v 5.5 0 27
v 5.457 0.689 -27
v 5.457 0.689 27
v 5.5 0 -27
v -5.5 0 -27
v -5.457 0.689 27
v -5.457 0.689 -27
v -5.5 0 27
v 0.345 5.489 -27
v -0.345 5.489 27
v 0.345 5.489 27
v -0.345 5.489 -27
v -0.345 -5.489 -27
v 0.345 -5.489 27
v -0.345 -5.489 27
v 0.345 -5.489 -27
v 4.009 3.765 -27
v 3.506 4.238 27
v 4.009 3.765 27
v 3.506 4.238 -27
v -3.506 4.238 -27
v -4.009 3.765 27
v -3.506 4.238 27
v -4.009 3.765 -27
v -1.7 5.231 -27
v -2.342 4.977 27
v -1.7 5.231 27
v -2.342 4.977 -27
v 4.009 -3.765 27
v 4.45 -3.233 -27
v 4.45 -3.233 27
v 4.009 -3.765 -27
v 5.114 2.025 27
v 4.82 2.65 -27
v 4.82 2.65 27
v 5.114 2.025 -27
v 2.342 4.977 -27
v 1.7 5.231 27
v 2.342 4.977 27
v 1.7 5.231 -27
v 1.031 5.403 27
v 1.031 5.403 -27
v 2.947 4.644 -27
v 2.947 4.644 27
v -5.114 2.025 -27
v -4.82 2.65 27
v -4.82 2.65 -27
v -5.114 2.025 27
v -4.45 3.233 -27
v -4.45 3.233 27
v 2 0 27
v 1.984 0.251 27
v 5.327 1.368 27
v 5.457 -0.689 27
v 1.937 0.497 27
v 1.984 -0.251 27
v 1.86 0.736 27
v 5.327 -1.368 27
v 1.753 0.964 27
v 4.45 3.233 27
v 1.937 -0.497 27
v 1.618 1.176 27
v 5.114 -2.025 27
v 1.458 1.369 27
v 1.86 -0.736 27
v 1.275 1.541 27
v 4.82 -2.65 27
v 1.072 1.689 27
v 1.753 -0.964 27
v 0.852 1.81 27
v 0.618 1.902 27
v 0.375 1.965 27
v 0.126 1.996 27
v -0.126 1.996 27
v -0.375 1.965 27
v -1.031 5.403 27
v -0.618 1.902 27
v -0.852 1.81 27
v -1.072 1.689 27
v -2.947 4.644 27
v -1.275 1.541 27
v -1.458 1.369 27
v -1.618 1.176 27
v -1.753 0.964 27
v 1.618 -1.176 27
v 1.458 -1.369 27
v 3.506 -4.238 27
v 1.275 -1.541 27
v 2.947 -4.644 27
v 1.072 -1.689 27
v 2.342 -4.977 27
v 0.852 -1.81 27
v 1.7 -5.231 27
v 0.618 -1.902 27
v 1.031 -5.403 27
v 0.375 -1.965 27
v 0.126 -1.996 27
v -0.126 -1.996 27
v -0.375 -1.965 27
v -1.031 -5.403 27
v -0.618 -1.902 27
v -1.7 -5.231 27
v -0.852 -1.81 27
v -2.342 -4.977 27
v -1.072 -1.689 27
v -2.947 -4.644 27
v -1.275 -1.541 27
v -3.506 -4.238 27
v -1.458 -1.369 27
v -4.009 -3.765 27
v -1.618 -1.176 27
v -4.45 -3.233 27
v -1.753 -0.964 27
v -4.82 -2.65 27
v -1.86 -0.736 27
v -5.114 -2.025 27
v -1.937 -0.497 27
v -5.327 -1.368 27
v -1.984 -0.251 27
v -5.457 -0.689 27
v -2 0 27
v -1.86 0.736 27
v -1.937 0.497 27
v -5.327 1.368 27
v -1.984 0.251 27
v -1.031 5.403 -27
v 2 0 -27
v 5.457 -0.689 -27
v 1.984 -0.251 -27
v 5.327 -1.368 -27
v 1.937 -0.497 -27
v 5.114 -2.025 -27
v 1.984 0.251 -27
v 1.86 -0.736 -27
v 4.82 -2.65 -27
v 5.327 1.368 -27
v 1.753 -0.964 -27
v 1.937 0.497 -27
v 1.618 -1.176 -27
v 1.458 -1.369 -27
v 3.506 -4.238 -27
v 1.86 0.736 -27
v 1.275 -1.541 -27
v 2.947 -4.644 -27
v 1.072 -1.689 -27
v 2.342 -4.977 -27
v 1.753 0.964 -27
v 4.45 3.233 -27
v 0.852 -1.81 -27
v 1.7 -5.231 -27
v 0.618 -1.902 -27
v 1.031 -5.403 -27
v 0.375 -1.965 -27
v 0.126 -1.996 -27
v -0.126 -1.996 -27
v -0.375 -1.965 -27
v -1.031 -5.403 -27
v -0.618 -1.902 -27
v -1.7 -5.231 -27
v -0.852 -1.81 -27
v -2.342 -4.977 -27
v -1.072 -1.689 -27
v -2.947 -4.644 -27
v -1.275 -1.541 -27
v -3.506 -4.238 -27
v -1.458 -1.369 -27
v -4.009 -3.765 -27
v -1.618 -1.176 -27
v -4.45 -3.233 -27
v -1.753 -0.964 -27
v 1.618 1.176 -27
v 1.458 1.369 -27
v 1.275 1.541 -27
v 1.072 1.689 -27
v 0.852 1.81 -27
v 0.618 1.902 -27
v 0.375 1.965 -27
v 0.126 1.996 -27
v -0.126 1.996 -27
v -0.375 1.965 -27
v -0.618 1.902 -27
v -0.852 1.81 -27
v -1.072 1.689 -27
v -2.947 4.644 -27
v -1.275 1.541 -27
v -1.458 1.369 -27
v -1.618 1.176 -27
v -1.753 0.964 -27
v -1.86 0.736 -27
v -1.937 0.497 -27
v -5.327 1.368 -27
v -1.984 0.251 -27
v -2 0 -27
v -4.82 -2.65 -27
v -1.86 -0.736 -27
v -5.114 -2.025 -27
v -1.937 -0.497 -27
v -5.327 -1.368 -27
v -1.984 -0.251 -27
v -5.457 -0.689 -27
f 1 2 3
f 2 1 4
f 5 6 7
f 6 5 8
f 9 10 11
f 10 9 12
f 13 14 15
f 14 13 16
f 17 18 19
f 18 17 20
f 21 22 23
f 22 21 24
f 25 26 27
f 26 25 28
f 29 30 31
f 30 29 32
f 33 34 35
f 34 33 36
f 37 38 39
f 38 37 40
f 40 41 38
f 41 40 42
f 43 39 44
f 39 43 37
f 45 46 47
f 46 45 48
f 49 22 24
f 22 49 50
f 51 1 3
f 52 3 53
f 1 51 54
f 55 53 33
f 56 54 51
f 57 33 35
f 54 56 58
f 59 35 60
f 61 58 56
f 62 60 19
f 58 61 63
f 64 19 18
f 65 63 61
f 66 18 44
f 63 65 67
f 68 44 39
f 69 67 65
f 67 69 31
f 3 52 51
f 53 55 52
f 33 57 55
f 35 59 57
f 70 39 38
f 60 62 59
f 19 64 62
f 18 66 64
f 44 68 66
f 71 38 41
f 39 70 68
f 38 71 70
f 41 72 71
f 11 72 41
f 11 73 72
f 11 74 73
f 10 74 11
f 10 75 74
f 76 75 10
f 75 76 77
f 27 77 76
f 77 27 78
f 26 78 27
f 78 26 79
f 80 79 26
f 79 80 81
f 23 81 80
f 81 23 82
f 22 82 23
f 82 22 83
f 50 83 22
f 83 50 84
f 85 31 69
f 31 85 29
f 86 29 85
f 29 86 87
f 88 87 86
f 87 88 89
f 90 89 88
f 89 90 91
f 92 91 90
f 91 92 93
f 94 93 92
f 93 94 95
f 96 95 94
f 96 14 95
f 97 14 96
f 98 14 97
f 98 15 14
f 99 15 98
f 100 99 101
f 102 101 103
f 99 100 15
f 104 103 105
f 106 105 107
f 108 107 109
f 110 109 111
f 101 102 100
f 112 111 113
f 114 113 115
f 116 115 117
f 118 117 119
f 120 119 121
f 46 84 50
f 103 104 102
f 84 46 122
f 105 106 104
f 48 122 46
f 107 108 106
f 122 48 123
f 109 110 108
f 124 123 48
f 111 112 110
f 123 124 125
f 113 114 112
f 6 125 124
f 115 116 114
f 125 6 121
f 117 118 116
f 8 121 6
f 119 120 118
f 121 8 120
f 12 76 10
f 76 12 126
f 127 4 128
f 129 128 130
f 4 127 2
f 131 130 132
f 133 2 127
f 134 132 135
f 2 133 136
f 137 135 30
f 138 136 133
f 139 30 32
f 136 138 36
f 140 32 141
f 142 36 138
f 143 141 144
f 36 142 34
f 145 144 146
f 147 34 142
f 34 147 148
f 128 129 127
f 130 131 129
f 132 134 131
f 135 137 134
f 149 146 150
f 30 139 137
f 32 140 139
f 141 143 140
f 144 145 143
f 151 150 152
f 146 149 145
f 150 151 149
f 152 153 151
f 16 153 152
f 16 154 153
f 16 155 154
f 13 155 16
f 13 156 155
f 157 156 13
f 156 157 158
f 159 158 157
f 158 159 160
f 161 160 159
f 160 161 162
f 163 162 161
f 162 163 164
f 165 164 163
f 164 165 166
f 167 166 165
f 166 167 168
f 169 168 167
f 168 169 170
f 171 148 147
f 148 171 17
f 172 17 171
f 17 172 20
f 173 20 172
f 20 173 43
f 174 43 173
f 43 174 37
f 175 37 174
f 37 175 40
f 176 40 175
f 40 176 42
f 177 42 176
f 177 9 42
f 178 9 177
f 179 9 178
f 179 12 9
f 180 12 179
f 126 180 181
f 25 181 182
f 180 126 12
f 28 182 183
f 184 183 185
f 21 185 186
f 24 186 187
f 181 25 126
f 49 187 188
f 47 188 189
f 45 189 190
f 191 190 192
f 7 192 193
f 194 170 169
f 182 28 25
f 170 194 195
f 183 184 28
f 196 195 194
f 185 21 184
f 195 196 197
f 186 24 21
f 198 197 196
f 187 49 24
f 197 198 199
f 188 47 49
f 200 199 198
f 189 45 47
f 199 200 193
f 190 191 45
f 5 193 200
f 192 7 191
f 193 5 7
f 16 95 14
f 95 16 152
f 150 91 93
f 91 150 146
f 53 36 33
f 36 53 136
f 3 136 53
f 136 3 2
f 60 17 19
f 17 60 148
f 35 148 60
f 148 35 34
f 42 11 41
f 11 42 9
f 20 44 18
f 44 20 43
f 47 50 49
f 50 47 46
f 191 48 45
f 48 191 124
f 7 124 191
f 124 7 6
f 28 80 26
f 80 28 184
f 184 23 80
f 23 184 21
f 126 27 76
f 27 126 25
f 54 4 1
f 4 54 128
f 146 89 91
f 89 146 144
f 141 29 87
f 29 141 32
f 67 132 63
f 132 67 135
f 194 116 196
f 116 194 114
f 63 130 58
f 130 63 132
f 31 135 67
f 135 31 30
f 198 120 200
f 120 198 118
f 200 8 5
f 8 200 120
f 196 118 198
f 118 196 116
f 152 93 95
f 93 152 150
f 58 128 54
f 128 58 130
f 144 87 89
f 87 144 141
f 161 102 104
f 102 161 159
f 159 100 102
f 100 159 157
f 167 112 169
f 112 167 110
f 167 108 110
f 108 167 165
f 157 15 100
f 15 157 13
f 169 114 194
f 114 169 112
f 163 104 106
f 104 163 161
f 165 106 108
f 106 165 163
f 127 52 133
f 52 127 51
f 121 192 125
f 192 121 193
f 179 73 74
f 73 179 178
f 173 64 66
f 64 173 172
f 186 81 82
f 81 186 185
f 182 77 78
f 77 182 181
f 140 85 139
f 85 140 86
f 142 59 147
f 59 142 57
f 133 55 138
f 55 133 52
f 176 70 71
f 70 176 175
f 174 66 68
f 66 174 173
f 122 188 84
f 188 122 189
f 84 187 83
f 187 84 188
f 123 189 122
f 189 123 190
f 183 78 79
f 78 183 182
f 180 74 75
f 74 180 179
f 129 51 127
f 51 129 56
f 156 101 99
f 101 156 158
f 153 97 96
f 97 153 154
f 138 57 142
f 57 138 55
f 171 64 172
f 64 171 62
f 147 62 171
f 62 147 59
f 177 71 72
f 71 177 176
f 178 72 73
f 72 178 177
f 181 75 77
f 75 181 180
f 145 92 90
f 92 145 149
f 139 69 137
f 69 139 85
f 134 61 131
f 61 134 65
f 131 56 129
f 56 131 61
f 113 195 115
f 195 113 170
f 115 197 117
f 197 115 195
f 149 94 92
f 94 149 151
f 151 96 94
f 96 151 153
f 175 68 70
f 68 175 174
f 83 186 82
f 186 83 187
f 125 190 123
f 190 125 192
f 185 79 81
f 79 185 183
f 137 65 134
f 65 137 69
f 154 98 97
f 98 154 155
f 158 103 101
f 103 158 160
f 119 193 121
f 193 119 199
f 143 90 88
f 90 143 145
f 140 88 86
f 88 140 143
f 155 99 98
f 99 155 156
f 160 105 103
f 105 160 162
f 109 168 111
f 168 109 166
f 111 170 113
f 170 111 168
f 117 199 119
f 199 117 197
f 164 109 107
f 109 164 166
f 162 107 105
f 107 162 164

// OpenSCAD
$fn = 50;


difference() {
	union() {
		translate(v = [0, 0, -27.0000000000]) {
			cylinder(h = 54, r = 5.5000000000);
		}
	}
	union() {
		translate(v = [0, 0, -100.0000000000]) {
			cylinder(h = 200, r = 2);
		}
	}
}
